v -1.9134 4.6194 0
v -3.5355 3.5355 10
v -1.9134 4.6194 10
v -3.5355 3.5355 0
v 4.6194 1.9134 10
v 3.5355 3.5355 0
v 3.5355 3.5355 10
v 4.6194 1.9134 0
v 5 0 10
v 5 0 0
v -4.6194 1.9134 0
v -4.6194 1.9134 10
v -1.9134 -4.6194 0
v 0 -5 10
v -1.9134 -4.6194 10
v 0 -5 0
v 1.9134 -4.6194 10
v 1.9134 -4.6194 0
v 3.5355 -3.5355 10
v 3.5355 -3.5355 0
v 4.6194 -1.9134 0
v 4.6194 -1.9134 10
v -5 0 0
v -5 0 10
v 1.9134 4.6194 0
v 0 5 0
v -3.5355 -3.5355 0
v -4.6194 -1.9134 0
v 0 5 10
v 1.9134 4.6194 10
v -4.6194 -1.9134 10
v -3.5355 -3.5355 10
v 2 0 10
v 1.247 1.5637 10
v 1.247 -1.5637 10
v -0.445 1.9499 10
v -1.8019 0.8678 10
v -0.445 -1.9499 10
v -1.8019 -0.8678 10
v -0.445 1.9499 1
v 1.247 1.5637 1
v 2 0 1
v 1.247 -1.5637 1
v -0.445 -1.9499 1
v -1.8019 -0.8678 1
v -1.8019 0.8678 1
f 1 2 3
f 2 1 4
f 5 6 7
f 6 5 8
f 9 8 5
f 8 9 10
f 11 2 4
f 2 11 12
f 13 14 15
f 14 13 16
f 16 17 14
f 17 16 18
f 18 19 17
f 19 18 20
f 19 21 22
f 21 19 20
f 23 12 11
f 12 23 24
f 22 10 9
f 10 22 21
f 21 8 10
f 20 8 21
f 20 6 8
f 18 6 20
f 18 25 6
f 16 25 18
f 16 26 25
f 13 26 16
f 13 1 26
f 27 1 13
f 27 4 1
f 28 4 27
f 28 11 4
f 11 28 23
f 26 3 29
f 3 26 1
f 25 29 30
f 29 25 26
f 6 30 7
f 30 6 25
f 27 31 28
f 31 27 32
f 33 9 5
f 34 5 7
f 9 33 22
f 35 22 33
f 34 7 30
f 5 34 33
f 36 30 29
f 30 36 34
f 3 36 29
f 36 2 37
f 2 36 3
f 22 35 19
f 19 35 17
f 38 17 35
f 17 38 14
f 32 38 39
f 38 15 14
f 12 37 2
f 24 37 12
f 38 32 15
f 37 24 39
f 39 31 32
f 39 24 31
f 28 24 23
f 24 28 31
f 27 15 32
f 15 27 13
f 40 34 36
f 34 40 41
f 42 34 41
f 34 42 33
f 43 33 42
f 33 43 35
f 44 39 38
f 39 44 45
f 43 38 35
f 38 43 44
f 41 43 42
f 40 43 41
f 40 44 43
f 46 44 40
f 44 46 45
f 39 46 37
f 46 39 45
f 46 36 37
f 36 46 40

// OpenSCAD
module hollow_cylinder(h, r1, r2, z_offset) {
  difference() {
    cylinder(h = h, r = r1, center = false);
    translate([0, 0, z_offset])
    cylinder(h = h - z_offset, r = r2, center = false);
  }
}

hollow_cylinder(h = 10, r1 = 5, r2 = 2, z_offset = 1);
